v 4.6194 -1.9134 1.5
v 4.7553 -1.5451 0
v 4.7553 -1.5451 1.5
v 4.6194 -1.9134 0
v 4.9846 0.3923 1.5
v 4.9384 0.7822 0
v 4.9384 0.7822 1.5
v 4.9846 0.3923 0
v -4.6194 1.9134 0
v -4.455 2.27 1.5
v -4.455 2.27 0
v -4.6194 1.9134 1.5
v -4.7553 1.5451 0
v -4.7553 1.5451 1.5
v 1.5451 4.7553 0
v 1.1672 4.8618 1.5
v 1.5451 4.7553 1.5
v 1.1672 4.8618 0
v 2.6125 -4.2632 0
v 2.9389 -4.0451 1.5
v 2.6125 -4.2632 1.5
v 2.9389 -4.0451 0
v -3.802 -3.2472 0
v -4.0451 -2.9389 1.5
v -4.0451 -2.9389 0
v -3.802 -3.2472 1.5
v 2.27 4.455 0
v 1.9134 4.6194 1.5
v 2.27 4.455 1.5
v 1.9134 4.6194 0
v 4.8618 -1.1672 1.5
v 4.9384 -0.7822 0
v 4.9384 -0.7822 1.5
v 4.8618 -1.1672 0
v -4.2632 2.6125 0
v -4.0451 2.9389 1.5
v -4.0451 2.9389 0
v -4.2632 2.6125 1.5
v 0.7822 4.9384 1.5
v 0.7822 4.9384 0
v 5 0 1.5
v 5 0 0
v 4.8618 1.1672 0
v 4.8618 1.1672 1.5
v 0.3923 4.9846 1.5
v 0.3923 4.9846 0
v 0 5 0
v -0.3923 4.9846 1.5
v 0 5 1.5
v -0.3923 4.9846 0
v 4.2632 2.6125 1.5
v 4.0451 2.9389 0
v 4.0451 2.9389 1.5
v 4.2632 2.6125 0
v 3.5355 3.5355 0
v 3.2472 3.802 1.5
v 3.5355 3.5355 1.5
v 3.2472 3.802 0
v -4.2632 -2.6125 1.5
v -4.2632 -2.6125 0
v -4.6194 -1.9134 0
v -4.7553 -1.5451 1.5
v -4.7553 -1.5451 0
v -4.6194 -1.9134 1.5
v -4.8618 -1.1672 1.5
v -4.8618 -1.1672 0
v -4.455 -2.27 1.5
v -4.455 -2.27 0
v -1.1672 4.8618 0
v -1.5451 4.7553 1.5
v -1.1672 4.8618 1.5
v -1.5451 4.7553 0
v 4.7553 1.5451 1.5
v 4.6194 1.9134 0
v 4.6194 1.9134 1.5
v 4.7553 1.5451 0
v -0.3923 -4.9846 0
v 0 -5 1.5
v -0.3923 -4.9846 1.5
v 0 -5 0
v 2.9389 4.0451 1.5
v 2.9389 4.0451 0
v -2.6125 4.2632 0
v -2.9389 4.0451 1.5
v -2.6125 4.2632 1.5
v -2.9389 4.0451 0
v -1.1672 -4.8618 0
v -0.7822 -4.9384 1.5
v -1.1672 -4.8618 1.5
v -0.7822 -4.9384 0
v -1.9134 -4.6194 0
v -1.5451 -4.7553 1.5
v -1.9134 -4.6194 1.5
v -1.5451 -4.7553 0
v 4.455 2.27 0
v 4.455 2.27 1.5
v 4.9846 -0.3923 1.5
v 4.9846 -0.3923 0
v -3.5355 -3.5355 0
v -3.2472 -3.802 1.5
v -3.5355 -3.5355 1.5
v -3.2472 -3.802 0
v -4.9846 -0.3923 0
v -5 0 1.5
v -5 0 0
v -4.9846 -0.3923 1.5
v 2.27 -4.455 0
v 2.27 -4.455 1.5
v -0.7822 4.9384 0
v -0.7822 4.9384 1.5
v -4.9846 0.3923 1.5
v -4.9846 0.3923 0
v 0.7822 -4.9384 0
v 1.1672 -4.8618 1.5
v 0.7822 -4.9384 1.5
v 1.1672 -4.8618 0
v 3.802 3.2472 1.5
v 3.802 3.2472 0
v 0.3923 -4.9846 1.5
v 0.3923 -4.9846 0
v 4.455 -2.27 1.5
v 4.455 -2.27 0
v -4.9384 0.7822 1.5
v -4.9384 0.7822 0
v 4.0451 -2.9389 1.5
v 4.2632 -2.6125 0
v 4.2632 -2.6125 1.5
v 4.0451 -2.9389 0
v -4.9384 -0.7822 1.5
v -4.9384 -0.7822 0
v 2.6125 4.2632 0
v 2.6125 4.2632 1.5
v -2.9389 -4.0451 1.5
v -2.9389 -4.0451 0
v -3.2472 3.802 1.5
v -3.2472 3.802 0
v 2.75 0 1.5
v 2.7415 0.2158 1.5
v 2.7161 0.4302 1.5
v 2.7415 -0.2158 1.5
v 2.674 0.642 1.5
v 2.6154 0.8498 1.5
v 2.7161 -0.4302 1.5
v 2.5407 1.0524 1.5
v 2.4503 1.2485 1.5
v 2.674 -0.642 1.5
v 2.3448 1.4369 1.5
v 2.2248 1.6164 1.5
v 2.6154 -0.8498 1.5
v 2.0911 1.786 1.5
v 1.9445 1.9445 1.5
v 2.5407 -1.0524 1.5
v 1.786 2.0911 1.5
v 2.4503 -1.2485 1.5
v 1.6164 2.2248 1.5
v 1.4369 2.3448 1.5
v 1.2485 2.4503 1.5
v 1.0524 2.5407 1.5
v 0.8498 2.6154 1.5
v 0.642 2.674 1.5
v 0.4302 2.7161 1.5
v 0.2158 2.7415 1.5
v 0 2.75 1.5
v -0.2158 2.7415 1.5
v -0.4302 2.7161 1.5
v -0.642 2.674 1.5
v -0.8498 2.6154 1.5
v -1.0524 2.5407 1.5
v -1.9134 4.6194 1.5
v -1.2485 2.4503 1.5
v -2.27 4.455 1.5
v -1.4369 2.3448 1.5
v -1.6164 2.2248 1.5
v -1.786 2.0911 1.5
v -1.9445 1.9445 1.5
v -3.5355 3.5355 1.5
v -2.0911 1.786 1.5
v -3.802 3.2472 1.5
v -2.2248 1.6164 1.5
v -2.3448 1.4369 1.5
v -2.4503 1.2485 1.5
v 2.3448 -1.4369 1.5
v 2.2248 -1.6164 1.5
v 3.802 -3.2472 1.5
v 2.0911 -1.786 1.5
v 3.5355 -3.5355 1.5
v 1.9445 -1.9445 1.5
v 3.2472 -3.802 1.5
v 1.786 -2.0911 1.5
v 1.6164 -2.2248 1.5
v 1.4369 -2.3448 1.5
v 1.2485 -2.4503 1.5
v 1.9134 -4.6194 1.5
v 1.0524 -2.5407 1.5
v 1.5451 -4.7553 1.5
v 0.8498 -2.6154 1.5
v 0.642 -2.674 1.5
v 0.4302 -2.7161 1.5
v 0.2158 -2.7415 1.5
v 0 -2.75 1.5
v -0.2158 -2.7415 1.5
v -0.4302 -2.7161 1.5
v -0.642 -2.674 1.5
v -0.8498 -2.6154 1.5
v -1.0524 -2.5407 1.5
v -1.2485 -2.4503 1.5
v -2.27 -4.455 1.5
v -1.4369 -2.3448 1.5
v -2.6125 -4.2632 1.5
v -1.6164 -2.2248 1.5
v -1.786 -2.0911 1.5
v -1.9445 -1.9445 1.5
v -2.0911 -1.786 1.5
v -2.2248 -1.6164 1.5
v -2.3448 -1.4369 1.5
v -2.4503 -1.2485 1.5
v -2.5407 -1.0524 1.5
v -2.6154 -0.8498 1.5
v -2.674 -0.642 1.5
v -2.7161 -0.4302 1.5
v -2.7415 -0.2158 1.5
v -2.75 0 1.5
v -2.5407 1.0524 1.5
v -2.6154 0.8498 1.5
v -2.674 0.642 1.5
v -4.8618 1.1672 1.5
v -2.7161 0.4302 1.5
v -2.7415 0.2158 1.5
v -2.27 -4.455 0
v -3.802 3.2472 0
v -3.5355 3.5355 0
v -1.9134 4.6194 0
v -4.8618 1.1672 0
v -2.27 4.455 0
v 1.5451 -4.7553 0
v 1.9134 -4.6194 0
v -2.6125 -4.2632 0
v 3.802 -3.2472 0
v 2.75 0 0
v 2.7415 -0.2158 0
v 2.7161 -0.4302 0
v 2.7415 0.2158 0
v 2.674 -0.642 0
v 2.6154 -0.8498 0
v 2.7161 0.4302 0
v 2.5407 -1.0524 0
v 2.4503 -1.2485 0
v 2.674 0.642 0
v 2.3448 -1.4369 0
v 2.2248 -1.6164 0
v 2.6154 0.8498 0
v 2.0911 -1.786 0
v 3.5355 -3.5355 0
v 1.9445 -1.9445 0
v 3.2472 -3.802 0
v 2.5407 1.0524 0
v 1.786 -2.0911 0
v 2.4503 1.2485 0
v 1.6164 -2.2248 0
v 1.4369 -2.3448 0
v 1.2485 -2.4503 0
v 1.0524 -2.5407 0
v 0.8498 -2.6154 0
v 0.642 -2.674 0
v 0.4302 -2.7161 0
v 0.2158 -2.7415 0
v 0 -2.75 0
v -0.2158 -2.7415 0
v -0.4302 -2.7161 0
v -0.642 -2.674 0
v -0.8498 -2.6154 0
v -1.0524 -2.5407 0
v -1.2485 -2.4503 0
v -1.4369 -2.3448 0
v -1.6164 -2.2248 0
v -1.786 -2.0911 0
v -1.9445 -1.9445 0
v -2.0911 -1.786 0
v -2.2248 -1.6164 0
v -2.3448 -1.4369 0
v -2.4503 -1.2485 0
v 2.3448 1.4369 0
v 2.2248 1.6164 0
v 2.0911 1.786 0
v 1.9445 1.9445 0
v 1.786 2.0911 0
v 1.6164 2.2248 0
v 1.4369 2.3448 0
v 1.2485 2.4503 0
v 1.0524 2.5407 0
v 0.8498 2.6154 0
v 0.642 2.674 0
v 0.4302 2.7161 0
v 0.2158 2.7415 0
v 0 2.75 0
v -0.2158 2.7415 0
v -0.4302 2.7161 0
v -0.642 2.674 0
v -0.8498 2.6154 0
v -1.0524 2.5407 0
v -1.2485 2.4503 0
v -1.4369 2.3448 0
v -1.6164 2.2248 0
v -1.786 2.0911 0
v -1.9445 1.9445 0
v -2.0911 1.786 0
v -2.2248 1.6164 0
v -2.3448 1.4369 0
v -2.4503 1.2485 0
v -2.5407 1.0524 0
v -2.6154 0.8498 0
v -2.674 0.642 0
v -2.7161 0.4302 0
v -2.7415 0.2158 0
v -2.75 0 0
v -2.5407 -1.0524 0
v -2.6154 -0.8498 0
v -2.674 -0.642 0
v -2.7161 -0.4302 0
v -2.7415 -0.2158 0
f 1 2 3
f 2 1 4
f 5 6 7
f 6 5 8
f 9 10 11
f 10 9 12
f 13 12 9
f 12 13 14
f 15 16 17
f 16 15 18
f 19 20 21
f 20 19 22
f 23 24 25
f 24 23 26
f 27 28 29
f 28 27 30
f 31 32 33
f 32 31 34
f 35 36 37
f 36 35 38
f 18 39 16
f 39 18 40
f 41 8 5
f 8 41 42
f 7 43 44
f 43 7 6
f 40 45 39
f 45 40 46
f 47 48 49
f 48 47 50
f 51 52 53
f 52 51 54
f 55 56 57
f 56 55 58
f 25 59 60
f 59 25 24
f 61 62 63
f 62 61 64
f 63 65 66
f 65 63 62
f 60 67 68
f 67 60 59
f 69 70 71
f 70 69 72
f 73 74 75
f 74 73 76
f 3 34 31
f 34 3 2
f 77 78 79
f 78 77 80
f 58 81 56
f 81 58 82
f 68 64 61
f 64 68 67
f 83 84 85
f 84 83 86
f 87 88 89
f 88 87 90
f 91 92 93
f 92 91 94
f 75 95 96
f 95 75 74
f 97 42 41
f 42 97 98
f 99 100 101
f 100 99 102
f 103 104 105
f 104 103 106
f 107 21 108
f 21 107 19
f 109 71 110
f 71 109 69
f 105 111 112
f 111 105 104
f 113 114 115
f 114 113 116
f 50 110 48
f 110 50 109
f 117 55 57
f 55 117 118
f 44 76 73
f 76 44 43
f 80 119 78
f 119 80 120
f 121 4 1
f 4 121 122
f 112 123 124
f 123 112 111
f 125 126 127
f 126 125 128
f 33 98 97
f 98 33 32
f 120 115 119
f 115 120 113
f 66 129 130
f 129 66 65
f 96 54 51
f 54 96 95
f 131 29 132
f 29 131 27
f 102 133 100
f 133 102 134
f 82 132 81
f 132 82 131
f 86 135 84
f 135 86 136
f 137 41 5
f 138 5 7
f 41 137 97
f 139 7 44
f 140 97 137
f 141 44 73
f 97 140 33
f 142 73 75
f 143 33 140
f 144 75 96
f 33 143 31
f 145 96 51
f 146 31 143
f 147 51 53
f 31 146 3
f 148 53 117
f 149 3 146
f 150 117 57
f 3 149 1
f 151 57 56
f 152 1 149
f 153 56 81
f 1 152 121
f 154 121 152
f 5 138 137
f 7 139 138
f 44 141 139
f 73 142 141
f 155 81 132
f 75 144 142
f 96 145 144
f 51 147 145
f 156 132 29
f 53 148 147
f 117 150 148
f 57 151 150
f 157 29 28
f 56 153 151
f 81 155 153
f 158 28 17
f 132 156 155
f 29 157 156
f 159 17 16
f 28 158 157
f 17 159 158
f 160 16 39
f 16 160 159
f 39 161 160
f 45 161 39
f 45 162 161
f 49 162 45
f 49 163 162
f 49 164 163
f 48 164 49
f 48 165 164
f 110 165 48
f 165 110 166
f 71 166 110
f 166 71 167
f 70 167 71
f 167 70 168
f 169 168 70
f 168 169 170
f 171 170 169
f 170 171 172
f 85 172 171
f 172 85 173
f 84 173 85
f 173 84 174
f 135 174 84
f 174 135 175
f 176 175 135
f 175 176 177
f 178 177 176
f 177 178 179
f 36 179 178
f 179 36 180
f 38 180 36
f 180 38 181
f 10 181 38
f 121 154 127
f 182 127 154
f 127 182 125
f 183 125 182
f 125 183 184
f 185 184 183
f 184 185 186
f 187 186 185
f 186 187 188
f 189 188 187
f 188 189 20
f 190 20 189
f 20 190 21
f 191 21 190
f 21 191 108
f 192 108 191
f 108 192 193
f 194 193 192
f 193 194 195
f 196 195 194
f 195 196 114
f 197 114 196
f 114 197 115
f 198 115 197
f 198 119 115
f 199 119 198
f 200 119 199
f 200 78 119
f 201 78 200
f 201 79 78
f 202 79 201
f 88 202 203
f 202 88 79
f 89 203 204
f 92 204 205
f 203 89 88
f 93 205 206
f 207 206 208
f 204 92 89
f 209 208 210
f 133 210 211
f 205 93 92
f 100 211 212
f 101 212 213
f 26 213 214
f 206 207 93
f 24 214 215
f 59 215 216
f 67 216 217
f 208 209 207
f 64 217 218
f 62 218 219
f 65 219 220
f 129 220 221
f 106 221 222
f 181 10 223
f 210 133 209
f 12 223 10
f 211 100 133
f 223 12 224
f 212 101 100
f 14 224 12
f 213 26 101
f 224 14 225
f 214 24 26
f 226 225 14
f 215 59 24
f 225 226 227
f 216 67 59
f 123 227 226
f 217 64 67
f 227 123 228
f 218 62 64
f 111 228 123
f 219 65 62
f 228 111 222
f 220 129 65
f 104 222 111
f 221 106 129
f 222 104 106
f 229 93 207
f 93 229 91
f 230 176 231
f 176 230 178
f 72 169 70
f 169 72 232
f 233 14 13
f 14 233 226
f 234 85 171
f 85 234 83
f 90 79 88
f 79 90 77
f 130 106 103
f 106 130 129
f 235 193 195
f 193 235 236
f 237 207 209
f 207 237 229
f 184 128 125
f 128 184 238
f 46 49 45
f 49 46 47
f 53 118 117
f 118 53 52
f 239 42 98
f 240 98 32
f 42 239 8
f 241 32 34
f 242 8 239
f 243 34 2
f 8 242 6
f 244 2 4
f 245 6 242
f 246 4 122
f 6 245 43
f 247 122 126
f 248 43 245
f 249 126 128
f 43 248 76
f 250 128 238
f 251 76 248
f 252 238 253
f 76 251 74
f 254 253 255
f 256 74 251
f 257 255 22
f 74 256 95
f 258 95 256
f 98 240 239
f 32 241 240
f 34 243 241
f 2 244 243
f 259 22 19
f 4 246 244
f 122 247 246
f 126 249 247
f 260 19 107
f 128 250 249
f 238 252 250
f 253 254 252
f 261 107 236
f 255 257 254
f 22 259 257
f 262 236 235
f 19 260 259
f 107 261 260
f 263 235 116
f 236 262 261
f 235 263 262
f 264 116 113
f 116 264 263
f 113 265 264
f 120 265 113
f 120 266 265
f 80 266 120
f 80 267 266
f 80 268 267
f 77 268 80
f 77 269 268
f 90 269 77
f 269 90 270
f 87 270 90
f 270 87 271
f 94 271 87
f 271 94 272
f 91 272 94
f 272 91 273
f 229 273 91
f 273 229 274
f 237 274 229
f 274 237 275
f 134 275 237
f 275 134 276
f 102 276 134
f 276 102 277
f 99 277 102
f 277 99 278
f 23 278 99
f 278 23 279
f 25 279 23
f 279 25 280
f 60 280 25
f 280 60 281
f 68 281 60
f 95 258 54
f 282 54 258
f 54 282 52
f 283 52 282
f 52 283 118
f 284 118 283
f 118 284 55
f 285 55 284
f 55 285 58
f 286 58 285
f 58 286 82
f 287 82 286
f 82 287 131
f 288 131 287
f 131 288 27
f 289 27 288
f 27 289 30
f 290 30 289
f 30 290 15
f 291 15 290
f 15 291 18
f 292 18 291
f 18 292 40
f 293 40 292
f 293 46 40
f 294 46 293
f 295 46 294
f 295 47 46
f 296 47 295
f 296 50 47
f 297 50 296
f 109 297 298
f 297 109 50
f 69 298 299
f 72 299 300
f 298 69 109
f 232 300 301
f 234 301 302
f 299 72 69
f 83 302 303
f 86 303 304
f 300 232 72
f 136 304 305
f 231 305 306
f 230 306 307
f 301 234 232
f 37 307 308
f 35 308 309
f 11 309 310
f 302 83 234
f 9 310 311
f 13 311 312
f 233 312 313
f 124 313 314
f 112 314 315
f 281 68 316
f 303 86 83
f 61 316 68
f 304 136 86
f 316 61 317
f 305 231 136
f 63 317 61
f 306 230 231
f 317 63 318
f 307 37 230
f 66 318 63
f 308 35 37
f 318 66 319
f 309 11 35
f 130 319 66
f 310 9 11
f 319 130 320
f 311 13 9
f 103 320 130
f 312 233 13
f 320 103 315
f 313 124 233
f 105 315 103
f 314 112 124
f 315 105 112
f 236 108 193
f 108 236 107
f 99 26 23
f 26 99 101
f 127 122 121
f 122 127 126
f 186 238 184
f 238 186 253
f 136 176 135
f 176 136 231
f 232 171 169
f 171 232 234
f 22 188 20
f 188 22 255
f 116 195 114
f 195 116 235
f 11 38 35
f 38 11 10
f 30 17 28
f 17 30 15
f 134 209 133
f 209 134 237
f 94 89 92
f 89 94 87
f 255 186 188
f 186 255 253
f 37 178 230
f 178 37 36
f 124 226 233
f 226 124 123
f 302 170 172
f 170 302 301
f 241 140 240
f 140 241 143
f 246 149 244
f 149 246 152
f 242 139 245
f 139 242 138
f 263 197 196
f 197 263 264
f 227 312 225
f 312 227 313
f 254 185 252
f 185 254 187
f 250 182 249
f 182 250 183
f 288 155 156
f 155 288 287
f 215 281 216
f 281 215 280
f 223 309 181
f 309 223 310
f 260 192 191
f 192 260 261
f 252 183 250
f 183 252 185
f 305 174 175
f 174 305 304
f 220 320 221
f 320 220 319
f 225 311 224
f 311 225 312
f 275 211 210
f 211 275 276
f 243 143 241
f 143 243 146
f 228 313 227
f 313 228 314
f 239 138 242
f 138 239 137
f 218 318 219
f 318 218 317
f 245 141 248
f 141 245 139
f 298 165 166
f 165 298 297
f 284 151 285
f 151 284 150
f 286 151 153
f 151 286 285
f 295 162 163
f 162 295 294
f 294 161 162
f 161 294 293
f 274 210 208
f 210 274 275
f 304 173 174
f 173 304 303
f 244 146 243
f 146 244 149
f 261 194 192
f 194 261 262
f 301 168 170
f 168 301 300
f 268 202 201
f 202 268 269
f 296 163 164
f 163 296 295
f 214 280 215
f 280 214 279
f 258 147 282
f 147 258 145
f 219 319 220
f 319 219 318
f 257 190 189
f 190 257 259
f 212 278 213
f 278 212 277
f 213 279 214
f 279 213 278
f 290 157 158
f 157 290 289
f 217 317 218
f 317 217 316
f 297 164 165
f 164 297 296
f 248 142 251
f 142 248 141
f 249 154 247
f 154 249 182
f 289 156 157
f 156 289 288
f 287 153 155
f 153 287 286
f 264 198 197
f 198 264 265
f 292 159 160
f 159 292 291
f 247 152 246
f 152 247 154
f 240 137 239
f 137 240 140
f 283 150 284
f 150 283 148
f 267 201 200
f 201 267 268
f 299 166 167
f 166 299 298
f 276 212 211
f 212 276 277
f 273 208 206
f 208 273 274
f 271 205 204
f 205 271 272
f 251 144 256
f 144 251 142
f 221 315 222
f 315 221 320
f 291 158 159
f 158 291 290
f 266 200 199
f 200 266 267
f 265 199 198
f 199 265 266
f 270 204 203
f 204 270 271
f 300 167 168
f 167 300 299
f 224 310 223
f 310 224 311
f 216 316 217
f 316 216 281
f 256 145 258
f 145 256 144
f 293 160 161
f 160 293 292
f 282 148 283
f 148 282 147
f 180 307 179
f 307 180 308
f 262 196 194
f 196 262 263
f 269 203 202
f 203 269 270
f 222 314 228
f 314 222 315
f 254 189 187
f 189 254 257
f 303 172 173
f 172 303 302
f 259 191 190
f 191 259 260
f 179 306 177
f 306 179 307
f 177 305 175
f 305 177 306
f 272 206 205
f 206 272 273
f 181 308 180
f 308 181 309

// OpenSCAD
// M5 podlozka

$fn=80;
difference(){
    cylinder(r=10/2,h=1.5);
    cylinder(r=5.5/2,h=1.5);
}   
